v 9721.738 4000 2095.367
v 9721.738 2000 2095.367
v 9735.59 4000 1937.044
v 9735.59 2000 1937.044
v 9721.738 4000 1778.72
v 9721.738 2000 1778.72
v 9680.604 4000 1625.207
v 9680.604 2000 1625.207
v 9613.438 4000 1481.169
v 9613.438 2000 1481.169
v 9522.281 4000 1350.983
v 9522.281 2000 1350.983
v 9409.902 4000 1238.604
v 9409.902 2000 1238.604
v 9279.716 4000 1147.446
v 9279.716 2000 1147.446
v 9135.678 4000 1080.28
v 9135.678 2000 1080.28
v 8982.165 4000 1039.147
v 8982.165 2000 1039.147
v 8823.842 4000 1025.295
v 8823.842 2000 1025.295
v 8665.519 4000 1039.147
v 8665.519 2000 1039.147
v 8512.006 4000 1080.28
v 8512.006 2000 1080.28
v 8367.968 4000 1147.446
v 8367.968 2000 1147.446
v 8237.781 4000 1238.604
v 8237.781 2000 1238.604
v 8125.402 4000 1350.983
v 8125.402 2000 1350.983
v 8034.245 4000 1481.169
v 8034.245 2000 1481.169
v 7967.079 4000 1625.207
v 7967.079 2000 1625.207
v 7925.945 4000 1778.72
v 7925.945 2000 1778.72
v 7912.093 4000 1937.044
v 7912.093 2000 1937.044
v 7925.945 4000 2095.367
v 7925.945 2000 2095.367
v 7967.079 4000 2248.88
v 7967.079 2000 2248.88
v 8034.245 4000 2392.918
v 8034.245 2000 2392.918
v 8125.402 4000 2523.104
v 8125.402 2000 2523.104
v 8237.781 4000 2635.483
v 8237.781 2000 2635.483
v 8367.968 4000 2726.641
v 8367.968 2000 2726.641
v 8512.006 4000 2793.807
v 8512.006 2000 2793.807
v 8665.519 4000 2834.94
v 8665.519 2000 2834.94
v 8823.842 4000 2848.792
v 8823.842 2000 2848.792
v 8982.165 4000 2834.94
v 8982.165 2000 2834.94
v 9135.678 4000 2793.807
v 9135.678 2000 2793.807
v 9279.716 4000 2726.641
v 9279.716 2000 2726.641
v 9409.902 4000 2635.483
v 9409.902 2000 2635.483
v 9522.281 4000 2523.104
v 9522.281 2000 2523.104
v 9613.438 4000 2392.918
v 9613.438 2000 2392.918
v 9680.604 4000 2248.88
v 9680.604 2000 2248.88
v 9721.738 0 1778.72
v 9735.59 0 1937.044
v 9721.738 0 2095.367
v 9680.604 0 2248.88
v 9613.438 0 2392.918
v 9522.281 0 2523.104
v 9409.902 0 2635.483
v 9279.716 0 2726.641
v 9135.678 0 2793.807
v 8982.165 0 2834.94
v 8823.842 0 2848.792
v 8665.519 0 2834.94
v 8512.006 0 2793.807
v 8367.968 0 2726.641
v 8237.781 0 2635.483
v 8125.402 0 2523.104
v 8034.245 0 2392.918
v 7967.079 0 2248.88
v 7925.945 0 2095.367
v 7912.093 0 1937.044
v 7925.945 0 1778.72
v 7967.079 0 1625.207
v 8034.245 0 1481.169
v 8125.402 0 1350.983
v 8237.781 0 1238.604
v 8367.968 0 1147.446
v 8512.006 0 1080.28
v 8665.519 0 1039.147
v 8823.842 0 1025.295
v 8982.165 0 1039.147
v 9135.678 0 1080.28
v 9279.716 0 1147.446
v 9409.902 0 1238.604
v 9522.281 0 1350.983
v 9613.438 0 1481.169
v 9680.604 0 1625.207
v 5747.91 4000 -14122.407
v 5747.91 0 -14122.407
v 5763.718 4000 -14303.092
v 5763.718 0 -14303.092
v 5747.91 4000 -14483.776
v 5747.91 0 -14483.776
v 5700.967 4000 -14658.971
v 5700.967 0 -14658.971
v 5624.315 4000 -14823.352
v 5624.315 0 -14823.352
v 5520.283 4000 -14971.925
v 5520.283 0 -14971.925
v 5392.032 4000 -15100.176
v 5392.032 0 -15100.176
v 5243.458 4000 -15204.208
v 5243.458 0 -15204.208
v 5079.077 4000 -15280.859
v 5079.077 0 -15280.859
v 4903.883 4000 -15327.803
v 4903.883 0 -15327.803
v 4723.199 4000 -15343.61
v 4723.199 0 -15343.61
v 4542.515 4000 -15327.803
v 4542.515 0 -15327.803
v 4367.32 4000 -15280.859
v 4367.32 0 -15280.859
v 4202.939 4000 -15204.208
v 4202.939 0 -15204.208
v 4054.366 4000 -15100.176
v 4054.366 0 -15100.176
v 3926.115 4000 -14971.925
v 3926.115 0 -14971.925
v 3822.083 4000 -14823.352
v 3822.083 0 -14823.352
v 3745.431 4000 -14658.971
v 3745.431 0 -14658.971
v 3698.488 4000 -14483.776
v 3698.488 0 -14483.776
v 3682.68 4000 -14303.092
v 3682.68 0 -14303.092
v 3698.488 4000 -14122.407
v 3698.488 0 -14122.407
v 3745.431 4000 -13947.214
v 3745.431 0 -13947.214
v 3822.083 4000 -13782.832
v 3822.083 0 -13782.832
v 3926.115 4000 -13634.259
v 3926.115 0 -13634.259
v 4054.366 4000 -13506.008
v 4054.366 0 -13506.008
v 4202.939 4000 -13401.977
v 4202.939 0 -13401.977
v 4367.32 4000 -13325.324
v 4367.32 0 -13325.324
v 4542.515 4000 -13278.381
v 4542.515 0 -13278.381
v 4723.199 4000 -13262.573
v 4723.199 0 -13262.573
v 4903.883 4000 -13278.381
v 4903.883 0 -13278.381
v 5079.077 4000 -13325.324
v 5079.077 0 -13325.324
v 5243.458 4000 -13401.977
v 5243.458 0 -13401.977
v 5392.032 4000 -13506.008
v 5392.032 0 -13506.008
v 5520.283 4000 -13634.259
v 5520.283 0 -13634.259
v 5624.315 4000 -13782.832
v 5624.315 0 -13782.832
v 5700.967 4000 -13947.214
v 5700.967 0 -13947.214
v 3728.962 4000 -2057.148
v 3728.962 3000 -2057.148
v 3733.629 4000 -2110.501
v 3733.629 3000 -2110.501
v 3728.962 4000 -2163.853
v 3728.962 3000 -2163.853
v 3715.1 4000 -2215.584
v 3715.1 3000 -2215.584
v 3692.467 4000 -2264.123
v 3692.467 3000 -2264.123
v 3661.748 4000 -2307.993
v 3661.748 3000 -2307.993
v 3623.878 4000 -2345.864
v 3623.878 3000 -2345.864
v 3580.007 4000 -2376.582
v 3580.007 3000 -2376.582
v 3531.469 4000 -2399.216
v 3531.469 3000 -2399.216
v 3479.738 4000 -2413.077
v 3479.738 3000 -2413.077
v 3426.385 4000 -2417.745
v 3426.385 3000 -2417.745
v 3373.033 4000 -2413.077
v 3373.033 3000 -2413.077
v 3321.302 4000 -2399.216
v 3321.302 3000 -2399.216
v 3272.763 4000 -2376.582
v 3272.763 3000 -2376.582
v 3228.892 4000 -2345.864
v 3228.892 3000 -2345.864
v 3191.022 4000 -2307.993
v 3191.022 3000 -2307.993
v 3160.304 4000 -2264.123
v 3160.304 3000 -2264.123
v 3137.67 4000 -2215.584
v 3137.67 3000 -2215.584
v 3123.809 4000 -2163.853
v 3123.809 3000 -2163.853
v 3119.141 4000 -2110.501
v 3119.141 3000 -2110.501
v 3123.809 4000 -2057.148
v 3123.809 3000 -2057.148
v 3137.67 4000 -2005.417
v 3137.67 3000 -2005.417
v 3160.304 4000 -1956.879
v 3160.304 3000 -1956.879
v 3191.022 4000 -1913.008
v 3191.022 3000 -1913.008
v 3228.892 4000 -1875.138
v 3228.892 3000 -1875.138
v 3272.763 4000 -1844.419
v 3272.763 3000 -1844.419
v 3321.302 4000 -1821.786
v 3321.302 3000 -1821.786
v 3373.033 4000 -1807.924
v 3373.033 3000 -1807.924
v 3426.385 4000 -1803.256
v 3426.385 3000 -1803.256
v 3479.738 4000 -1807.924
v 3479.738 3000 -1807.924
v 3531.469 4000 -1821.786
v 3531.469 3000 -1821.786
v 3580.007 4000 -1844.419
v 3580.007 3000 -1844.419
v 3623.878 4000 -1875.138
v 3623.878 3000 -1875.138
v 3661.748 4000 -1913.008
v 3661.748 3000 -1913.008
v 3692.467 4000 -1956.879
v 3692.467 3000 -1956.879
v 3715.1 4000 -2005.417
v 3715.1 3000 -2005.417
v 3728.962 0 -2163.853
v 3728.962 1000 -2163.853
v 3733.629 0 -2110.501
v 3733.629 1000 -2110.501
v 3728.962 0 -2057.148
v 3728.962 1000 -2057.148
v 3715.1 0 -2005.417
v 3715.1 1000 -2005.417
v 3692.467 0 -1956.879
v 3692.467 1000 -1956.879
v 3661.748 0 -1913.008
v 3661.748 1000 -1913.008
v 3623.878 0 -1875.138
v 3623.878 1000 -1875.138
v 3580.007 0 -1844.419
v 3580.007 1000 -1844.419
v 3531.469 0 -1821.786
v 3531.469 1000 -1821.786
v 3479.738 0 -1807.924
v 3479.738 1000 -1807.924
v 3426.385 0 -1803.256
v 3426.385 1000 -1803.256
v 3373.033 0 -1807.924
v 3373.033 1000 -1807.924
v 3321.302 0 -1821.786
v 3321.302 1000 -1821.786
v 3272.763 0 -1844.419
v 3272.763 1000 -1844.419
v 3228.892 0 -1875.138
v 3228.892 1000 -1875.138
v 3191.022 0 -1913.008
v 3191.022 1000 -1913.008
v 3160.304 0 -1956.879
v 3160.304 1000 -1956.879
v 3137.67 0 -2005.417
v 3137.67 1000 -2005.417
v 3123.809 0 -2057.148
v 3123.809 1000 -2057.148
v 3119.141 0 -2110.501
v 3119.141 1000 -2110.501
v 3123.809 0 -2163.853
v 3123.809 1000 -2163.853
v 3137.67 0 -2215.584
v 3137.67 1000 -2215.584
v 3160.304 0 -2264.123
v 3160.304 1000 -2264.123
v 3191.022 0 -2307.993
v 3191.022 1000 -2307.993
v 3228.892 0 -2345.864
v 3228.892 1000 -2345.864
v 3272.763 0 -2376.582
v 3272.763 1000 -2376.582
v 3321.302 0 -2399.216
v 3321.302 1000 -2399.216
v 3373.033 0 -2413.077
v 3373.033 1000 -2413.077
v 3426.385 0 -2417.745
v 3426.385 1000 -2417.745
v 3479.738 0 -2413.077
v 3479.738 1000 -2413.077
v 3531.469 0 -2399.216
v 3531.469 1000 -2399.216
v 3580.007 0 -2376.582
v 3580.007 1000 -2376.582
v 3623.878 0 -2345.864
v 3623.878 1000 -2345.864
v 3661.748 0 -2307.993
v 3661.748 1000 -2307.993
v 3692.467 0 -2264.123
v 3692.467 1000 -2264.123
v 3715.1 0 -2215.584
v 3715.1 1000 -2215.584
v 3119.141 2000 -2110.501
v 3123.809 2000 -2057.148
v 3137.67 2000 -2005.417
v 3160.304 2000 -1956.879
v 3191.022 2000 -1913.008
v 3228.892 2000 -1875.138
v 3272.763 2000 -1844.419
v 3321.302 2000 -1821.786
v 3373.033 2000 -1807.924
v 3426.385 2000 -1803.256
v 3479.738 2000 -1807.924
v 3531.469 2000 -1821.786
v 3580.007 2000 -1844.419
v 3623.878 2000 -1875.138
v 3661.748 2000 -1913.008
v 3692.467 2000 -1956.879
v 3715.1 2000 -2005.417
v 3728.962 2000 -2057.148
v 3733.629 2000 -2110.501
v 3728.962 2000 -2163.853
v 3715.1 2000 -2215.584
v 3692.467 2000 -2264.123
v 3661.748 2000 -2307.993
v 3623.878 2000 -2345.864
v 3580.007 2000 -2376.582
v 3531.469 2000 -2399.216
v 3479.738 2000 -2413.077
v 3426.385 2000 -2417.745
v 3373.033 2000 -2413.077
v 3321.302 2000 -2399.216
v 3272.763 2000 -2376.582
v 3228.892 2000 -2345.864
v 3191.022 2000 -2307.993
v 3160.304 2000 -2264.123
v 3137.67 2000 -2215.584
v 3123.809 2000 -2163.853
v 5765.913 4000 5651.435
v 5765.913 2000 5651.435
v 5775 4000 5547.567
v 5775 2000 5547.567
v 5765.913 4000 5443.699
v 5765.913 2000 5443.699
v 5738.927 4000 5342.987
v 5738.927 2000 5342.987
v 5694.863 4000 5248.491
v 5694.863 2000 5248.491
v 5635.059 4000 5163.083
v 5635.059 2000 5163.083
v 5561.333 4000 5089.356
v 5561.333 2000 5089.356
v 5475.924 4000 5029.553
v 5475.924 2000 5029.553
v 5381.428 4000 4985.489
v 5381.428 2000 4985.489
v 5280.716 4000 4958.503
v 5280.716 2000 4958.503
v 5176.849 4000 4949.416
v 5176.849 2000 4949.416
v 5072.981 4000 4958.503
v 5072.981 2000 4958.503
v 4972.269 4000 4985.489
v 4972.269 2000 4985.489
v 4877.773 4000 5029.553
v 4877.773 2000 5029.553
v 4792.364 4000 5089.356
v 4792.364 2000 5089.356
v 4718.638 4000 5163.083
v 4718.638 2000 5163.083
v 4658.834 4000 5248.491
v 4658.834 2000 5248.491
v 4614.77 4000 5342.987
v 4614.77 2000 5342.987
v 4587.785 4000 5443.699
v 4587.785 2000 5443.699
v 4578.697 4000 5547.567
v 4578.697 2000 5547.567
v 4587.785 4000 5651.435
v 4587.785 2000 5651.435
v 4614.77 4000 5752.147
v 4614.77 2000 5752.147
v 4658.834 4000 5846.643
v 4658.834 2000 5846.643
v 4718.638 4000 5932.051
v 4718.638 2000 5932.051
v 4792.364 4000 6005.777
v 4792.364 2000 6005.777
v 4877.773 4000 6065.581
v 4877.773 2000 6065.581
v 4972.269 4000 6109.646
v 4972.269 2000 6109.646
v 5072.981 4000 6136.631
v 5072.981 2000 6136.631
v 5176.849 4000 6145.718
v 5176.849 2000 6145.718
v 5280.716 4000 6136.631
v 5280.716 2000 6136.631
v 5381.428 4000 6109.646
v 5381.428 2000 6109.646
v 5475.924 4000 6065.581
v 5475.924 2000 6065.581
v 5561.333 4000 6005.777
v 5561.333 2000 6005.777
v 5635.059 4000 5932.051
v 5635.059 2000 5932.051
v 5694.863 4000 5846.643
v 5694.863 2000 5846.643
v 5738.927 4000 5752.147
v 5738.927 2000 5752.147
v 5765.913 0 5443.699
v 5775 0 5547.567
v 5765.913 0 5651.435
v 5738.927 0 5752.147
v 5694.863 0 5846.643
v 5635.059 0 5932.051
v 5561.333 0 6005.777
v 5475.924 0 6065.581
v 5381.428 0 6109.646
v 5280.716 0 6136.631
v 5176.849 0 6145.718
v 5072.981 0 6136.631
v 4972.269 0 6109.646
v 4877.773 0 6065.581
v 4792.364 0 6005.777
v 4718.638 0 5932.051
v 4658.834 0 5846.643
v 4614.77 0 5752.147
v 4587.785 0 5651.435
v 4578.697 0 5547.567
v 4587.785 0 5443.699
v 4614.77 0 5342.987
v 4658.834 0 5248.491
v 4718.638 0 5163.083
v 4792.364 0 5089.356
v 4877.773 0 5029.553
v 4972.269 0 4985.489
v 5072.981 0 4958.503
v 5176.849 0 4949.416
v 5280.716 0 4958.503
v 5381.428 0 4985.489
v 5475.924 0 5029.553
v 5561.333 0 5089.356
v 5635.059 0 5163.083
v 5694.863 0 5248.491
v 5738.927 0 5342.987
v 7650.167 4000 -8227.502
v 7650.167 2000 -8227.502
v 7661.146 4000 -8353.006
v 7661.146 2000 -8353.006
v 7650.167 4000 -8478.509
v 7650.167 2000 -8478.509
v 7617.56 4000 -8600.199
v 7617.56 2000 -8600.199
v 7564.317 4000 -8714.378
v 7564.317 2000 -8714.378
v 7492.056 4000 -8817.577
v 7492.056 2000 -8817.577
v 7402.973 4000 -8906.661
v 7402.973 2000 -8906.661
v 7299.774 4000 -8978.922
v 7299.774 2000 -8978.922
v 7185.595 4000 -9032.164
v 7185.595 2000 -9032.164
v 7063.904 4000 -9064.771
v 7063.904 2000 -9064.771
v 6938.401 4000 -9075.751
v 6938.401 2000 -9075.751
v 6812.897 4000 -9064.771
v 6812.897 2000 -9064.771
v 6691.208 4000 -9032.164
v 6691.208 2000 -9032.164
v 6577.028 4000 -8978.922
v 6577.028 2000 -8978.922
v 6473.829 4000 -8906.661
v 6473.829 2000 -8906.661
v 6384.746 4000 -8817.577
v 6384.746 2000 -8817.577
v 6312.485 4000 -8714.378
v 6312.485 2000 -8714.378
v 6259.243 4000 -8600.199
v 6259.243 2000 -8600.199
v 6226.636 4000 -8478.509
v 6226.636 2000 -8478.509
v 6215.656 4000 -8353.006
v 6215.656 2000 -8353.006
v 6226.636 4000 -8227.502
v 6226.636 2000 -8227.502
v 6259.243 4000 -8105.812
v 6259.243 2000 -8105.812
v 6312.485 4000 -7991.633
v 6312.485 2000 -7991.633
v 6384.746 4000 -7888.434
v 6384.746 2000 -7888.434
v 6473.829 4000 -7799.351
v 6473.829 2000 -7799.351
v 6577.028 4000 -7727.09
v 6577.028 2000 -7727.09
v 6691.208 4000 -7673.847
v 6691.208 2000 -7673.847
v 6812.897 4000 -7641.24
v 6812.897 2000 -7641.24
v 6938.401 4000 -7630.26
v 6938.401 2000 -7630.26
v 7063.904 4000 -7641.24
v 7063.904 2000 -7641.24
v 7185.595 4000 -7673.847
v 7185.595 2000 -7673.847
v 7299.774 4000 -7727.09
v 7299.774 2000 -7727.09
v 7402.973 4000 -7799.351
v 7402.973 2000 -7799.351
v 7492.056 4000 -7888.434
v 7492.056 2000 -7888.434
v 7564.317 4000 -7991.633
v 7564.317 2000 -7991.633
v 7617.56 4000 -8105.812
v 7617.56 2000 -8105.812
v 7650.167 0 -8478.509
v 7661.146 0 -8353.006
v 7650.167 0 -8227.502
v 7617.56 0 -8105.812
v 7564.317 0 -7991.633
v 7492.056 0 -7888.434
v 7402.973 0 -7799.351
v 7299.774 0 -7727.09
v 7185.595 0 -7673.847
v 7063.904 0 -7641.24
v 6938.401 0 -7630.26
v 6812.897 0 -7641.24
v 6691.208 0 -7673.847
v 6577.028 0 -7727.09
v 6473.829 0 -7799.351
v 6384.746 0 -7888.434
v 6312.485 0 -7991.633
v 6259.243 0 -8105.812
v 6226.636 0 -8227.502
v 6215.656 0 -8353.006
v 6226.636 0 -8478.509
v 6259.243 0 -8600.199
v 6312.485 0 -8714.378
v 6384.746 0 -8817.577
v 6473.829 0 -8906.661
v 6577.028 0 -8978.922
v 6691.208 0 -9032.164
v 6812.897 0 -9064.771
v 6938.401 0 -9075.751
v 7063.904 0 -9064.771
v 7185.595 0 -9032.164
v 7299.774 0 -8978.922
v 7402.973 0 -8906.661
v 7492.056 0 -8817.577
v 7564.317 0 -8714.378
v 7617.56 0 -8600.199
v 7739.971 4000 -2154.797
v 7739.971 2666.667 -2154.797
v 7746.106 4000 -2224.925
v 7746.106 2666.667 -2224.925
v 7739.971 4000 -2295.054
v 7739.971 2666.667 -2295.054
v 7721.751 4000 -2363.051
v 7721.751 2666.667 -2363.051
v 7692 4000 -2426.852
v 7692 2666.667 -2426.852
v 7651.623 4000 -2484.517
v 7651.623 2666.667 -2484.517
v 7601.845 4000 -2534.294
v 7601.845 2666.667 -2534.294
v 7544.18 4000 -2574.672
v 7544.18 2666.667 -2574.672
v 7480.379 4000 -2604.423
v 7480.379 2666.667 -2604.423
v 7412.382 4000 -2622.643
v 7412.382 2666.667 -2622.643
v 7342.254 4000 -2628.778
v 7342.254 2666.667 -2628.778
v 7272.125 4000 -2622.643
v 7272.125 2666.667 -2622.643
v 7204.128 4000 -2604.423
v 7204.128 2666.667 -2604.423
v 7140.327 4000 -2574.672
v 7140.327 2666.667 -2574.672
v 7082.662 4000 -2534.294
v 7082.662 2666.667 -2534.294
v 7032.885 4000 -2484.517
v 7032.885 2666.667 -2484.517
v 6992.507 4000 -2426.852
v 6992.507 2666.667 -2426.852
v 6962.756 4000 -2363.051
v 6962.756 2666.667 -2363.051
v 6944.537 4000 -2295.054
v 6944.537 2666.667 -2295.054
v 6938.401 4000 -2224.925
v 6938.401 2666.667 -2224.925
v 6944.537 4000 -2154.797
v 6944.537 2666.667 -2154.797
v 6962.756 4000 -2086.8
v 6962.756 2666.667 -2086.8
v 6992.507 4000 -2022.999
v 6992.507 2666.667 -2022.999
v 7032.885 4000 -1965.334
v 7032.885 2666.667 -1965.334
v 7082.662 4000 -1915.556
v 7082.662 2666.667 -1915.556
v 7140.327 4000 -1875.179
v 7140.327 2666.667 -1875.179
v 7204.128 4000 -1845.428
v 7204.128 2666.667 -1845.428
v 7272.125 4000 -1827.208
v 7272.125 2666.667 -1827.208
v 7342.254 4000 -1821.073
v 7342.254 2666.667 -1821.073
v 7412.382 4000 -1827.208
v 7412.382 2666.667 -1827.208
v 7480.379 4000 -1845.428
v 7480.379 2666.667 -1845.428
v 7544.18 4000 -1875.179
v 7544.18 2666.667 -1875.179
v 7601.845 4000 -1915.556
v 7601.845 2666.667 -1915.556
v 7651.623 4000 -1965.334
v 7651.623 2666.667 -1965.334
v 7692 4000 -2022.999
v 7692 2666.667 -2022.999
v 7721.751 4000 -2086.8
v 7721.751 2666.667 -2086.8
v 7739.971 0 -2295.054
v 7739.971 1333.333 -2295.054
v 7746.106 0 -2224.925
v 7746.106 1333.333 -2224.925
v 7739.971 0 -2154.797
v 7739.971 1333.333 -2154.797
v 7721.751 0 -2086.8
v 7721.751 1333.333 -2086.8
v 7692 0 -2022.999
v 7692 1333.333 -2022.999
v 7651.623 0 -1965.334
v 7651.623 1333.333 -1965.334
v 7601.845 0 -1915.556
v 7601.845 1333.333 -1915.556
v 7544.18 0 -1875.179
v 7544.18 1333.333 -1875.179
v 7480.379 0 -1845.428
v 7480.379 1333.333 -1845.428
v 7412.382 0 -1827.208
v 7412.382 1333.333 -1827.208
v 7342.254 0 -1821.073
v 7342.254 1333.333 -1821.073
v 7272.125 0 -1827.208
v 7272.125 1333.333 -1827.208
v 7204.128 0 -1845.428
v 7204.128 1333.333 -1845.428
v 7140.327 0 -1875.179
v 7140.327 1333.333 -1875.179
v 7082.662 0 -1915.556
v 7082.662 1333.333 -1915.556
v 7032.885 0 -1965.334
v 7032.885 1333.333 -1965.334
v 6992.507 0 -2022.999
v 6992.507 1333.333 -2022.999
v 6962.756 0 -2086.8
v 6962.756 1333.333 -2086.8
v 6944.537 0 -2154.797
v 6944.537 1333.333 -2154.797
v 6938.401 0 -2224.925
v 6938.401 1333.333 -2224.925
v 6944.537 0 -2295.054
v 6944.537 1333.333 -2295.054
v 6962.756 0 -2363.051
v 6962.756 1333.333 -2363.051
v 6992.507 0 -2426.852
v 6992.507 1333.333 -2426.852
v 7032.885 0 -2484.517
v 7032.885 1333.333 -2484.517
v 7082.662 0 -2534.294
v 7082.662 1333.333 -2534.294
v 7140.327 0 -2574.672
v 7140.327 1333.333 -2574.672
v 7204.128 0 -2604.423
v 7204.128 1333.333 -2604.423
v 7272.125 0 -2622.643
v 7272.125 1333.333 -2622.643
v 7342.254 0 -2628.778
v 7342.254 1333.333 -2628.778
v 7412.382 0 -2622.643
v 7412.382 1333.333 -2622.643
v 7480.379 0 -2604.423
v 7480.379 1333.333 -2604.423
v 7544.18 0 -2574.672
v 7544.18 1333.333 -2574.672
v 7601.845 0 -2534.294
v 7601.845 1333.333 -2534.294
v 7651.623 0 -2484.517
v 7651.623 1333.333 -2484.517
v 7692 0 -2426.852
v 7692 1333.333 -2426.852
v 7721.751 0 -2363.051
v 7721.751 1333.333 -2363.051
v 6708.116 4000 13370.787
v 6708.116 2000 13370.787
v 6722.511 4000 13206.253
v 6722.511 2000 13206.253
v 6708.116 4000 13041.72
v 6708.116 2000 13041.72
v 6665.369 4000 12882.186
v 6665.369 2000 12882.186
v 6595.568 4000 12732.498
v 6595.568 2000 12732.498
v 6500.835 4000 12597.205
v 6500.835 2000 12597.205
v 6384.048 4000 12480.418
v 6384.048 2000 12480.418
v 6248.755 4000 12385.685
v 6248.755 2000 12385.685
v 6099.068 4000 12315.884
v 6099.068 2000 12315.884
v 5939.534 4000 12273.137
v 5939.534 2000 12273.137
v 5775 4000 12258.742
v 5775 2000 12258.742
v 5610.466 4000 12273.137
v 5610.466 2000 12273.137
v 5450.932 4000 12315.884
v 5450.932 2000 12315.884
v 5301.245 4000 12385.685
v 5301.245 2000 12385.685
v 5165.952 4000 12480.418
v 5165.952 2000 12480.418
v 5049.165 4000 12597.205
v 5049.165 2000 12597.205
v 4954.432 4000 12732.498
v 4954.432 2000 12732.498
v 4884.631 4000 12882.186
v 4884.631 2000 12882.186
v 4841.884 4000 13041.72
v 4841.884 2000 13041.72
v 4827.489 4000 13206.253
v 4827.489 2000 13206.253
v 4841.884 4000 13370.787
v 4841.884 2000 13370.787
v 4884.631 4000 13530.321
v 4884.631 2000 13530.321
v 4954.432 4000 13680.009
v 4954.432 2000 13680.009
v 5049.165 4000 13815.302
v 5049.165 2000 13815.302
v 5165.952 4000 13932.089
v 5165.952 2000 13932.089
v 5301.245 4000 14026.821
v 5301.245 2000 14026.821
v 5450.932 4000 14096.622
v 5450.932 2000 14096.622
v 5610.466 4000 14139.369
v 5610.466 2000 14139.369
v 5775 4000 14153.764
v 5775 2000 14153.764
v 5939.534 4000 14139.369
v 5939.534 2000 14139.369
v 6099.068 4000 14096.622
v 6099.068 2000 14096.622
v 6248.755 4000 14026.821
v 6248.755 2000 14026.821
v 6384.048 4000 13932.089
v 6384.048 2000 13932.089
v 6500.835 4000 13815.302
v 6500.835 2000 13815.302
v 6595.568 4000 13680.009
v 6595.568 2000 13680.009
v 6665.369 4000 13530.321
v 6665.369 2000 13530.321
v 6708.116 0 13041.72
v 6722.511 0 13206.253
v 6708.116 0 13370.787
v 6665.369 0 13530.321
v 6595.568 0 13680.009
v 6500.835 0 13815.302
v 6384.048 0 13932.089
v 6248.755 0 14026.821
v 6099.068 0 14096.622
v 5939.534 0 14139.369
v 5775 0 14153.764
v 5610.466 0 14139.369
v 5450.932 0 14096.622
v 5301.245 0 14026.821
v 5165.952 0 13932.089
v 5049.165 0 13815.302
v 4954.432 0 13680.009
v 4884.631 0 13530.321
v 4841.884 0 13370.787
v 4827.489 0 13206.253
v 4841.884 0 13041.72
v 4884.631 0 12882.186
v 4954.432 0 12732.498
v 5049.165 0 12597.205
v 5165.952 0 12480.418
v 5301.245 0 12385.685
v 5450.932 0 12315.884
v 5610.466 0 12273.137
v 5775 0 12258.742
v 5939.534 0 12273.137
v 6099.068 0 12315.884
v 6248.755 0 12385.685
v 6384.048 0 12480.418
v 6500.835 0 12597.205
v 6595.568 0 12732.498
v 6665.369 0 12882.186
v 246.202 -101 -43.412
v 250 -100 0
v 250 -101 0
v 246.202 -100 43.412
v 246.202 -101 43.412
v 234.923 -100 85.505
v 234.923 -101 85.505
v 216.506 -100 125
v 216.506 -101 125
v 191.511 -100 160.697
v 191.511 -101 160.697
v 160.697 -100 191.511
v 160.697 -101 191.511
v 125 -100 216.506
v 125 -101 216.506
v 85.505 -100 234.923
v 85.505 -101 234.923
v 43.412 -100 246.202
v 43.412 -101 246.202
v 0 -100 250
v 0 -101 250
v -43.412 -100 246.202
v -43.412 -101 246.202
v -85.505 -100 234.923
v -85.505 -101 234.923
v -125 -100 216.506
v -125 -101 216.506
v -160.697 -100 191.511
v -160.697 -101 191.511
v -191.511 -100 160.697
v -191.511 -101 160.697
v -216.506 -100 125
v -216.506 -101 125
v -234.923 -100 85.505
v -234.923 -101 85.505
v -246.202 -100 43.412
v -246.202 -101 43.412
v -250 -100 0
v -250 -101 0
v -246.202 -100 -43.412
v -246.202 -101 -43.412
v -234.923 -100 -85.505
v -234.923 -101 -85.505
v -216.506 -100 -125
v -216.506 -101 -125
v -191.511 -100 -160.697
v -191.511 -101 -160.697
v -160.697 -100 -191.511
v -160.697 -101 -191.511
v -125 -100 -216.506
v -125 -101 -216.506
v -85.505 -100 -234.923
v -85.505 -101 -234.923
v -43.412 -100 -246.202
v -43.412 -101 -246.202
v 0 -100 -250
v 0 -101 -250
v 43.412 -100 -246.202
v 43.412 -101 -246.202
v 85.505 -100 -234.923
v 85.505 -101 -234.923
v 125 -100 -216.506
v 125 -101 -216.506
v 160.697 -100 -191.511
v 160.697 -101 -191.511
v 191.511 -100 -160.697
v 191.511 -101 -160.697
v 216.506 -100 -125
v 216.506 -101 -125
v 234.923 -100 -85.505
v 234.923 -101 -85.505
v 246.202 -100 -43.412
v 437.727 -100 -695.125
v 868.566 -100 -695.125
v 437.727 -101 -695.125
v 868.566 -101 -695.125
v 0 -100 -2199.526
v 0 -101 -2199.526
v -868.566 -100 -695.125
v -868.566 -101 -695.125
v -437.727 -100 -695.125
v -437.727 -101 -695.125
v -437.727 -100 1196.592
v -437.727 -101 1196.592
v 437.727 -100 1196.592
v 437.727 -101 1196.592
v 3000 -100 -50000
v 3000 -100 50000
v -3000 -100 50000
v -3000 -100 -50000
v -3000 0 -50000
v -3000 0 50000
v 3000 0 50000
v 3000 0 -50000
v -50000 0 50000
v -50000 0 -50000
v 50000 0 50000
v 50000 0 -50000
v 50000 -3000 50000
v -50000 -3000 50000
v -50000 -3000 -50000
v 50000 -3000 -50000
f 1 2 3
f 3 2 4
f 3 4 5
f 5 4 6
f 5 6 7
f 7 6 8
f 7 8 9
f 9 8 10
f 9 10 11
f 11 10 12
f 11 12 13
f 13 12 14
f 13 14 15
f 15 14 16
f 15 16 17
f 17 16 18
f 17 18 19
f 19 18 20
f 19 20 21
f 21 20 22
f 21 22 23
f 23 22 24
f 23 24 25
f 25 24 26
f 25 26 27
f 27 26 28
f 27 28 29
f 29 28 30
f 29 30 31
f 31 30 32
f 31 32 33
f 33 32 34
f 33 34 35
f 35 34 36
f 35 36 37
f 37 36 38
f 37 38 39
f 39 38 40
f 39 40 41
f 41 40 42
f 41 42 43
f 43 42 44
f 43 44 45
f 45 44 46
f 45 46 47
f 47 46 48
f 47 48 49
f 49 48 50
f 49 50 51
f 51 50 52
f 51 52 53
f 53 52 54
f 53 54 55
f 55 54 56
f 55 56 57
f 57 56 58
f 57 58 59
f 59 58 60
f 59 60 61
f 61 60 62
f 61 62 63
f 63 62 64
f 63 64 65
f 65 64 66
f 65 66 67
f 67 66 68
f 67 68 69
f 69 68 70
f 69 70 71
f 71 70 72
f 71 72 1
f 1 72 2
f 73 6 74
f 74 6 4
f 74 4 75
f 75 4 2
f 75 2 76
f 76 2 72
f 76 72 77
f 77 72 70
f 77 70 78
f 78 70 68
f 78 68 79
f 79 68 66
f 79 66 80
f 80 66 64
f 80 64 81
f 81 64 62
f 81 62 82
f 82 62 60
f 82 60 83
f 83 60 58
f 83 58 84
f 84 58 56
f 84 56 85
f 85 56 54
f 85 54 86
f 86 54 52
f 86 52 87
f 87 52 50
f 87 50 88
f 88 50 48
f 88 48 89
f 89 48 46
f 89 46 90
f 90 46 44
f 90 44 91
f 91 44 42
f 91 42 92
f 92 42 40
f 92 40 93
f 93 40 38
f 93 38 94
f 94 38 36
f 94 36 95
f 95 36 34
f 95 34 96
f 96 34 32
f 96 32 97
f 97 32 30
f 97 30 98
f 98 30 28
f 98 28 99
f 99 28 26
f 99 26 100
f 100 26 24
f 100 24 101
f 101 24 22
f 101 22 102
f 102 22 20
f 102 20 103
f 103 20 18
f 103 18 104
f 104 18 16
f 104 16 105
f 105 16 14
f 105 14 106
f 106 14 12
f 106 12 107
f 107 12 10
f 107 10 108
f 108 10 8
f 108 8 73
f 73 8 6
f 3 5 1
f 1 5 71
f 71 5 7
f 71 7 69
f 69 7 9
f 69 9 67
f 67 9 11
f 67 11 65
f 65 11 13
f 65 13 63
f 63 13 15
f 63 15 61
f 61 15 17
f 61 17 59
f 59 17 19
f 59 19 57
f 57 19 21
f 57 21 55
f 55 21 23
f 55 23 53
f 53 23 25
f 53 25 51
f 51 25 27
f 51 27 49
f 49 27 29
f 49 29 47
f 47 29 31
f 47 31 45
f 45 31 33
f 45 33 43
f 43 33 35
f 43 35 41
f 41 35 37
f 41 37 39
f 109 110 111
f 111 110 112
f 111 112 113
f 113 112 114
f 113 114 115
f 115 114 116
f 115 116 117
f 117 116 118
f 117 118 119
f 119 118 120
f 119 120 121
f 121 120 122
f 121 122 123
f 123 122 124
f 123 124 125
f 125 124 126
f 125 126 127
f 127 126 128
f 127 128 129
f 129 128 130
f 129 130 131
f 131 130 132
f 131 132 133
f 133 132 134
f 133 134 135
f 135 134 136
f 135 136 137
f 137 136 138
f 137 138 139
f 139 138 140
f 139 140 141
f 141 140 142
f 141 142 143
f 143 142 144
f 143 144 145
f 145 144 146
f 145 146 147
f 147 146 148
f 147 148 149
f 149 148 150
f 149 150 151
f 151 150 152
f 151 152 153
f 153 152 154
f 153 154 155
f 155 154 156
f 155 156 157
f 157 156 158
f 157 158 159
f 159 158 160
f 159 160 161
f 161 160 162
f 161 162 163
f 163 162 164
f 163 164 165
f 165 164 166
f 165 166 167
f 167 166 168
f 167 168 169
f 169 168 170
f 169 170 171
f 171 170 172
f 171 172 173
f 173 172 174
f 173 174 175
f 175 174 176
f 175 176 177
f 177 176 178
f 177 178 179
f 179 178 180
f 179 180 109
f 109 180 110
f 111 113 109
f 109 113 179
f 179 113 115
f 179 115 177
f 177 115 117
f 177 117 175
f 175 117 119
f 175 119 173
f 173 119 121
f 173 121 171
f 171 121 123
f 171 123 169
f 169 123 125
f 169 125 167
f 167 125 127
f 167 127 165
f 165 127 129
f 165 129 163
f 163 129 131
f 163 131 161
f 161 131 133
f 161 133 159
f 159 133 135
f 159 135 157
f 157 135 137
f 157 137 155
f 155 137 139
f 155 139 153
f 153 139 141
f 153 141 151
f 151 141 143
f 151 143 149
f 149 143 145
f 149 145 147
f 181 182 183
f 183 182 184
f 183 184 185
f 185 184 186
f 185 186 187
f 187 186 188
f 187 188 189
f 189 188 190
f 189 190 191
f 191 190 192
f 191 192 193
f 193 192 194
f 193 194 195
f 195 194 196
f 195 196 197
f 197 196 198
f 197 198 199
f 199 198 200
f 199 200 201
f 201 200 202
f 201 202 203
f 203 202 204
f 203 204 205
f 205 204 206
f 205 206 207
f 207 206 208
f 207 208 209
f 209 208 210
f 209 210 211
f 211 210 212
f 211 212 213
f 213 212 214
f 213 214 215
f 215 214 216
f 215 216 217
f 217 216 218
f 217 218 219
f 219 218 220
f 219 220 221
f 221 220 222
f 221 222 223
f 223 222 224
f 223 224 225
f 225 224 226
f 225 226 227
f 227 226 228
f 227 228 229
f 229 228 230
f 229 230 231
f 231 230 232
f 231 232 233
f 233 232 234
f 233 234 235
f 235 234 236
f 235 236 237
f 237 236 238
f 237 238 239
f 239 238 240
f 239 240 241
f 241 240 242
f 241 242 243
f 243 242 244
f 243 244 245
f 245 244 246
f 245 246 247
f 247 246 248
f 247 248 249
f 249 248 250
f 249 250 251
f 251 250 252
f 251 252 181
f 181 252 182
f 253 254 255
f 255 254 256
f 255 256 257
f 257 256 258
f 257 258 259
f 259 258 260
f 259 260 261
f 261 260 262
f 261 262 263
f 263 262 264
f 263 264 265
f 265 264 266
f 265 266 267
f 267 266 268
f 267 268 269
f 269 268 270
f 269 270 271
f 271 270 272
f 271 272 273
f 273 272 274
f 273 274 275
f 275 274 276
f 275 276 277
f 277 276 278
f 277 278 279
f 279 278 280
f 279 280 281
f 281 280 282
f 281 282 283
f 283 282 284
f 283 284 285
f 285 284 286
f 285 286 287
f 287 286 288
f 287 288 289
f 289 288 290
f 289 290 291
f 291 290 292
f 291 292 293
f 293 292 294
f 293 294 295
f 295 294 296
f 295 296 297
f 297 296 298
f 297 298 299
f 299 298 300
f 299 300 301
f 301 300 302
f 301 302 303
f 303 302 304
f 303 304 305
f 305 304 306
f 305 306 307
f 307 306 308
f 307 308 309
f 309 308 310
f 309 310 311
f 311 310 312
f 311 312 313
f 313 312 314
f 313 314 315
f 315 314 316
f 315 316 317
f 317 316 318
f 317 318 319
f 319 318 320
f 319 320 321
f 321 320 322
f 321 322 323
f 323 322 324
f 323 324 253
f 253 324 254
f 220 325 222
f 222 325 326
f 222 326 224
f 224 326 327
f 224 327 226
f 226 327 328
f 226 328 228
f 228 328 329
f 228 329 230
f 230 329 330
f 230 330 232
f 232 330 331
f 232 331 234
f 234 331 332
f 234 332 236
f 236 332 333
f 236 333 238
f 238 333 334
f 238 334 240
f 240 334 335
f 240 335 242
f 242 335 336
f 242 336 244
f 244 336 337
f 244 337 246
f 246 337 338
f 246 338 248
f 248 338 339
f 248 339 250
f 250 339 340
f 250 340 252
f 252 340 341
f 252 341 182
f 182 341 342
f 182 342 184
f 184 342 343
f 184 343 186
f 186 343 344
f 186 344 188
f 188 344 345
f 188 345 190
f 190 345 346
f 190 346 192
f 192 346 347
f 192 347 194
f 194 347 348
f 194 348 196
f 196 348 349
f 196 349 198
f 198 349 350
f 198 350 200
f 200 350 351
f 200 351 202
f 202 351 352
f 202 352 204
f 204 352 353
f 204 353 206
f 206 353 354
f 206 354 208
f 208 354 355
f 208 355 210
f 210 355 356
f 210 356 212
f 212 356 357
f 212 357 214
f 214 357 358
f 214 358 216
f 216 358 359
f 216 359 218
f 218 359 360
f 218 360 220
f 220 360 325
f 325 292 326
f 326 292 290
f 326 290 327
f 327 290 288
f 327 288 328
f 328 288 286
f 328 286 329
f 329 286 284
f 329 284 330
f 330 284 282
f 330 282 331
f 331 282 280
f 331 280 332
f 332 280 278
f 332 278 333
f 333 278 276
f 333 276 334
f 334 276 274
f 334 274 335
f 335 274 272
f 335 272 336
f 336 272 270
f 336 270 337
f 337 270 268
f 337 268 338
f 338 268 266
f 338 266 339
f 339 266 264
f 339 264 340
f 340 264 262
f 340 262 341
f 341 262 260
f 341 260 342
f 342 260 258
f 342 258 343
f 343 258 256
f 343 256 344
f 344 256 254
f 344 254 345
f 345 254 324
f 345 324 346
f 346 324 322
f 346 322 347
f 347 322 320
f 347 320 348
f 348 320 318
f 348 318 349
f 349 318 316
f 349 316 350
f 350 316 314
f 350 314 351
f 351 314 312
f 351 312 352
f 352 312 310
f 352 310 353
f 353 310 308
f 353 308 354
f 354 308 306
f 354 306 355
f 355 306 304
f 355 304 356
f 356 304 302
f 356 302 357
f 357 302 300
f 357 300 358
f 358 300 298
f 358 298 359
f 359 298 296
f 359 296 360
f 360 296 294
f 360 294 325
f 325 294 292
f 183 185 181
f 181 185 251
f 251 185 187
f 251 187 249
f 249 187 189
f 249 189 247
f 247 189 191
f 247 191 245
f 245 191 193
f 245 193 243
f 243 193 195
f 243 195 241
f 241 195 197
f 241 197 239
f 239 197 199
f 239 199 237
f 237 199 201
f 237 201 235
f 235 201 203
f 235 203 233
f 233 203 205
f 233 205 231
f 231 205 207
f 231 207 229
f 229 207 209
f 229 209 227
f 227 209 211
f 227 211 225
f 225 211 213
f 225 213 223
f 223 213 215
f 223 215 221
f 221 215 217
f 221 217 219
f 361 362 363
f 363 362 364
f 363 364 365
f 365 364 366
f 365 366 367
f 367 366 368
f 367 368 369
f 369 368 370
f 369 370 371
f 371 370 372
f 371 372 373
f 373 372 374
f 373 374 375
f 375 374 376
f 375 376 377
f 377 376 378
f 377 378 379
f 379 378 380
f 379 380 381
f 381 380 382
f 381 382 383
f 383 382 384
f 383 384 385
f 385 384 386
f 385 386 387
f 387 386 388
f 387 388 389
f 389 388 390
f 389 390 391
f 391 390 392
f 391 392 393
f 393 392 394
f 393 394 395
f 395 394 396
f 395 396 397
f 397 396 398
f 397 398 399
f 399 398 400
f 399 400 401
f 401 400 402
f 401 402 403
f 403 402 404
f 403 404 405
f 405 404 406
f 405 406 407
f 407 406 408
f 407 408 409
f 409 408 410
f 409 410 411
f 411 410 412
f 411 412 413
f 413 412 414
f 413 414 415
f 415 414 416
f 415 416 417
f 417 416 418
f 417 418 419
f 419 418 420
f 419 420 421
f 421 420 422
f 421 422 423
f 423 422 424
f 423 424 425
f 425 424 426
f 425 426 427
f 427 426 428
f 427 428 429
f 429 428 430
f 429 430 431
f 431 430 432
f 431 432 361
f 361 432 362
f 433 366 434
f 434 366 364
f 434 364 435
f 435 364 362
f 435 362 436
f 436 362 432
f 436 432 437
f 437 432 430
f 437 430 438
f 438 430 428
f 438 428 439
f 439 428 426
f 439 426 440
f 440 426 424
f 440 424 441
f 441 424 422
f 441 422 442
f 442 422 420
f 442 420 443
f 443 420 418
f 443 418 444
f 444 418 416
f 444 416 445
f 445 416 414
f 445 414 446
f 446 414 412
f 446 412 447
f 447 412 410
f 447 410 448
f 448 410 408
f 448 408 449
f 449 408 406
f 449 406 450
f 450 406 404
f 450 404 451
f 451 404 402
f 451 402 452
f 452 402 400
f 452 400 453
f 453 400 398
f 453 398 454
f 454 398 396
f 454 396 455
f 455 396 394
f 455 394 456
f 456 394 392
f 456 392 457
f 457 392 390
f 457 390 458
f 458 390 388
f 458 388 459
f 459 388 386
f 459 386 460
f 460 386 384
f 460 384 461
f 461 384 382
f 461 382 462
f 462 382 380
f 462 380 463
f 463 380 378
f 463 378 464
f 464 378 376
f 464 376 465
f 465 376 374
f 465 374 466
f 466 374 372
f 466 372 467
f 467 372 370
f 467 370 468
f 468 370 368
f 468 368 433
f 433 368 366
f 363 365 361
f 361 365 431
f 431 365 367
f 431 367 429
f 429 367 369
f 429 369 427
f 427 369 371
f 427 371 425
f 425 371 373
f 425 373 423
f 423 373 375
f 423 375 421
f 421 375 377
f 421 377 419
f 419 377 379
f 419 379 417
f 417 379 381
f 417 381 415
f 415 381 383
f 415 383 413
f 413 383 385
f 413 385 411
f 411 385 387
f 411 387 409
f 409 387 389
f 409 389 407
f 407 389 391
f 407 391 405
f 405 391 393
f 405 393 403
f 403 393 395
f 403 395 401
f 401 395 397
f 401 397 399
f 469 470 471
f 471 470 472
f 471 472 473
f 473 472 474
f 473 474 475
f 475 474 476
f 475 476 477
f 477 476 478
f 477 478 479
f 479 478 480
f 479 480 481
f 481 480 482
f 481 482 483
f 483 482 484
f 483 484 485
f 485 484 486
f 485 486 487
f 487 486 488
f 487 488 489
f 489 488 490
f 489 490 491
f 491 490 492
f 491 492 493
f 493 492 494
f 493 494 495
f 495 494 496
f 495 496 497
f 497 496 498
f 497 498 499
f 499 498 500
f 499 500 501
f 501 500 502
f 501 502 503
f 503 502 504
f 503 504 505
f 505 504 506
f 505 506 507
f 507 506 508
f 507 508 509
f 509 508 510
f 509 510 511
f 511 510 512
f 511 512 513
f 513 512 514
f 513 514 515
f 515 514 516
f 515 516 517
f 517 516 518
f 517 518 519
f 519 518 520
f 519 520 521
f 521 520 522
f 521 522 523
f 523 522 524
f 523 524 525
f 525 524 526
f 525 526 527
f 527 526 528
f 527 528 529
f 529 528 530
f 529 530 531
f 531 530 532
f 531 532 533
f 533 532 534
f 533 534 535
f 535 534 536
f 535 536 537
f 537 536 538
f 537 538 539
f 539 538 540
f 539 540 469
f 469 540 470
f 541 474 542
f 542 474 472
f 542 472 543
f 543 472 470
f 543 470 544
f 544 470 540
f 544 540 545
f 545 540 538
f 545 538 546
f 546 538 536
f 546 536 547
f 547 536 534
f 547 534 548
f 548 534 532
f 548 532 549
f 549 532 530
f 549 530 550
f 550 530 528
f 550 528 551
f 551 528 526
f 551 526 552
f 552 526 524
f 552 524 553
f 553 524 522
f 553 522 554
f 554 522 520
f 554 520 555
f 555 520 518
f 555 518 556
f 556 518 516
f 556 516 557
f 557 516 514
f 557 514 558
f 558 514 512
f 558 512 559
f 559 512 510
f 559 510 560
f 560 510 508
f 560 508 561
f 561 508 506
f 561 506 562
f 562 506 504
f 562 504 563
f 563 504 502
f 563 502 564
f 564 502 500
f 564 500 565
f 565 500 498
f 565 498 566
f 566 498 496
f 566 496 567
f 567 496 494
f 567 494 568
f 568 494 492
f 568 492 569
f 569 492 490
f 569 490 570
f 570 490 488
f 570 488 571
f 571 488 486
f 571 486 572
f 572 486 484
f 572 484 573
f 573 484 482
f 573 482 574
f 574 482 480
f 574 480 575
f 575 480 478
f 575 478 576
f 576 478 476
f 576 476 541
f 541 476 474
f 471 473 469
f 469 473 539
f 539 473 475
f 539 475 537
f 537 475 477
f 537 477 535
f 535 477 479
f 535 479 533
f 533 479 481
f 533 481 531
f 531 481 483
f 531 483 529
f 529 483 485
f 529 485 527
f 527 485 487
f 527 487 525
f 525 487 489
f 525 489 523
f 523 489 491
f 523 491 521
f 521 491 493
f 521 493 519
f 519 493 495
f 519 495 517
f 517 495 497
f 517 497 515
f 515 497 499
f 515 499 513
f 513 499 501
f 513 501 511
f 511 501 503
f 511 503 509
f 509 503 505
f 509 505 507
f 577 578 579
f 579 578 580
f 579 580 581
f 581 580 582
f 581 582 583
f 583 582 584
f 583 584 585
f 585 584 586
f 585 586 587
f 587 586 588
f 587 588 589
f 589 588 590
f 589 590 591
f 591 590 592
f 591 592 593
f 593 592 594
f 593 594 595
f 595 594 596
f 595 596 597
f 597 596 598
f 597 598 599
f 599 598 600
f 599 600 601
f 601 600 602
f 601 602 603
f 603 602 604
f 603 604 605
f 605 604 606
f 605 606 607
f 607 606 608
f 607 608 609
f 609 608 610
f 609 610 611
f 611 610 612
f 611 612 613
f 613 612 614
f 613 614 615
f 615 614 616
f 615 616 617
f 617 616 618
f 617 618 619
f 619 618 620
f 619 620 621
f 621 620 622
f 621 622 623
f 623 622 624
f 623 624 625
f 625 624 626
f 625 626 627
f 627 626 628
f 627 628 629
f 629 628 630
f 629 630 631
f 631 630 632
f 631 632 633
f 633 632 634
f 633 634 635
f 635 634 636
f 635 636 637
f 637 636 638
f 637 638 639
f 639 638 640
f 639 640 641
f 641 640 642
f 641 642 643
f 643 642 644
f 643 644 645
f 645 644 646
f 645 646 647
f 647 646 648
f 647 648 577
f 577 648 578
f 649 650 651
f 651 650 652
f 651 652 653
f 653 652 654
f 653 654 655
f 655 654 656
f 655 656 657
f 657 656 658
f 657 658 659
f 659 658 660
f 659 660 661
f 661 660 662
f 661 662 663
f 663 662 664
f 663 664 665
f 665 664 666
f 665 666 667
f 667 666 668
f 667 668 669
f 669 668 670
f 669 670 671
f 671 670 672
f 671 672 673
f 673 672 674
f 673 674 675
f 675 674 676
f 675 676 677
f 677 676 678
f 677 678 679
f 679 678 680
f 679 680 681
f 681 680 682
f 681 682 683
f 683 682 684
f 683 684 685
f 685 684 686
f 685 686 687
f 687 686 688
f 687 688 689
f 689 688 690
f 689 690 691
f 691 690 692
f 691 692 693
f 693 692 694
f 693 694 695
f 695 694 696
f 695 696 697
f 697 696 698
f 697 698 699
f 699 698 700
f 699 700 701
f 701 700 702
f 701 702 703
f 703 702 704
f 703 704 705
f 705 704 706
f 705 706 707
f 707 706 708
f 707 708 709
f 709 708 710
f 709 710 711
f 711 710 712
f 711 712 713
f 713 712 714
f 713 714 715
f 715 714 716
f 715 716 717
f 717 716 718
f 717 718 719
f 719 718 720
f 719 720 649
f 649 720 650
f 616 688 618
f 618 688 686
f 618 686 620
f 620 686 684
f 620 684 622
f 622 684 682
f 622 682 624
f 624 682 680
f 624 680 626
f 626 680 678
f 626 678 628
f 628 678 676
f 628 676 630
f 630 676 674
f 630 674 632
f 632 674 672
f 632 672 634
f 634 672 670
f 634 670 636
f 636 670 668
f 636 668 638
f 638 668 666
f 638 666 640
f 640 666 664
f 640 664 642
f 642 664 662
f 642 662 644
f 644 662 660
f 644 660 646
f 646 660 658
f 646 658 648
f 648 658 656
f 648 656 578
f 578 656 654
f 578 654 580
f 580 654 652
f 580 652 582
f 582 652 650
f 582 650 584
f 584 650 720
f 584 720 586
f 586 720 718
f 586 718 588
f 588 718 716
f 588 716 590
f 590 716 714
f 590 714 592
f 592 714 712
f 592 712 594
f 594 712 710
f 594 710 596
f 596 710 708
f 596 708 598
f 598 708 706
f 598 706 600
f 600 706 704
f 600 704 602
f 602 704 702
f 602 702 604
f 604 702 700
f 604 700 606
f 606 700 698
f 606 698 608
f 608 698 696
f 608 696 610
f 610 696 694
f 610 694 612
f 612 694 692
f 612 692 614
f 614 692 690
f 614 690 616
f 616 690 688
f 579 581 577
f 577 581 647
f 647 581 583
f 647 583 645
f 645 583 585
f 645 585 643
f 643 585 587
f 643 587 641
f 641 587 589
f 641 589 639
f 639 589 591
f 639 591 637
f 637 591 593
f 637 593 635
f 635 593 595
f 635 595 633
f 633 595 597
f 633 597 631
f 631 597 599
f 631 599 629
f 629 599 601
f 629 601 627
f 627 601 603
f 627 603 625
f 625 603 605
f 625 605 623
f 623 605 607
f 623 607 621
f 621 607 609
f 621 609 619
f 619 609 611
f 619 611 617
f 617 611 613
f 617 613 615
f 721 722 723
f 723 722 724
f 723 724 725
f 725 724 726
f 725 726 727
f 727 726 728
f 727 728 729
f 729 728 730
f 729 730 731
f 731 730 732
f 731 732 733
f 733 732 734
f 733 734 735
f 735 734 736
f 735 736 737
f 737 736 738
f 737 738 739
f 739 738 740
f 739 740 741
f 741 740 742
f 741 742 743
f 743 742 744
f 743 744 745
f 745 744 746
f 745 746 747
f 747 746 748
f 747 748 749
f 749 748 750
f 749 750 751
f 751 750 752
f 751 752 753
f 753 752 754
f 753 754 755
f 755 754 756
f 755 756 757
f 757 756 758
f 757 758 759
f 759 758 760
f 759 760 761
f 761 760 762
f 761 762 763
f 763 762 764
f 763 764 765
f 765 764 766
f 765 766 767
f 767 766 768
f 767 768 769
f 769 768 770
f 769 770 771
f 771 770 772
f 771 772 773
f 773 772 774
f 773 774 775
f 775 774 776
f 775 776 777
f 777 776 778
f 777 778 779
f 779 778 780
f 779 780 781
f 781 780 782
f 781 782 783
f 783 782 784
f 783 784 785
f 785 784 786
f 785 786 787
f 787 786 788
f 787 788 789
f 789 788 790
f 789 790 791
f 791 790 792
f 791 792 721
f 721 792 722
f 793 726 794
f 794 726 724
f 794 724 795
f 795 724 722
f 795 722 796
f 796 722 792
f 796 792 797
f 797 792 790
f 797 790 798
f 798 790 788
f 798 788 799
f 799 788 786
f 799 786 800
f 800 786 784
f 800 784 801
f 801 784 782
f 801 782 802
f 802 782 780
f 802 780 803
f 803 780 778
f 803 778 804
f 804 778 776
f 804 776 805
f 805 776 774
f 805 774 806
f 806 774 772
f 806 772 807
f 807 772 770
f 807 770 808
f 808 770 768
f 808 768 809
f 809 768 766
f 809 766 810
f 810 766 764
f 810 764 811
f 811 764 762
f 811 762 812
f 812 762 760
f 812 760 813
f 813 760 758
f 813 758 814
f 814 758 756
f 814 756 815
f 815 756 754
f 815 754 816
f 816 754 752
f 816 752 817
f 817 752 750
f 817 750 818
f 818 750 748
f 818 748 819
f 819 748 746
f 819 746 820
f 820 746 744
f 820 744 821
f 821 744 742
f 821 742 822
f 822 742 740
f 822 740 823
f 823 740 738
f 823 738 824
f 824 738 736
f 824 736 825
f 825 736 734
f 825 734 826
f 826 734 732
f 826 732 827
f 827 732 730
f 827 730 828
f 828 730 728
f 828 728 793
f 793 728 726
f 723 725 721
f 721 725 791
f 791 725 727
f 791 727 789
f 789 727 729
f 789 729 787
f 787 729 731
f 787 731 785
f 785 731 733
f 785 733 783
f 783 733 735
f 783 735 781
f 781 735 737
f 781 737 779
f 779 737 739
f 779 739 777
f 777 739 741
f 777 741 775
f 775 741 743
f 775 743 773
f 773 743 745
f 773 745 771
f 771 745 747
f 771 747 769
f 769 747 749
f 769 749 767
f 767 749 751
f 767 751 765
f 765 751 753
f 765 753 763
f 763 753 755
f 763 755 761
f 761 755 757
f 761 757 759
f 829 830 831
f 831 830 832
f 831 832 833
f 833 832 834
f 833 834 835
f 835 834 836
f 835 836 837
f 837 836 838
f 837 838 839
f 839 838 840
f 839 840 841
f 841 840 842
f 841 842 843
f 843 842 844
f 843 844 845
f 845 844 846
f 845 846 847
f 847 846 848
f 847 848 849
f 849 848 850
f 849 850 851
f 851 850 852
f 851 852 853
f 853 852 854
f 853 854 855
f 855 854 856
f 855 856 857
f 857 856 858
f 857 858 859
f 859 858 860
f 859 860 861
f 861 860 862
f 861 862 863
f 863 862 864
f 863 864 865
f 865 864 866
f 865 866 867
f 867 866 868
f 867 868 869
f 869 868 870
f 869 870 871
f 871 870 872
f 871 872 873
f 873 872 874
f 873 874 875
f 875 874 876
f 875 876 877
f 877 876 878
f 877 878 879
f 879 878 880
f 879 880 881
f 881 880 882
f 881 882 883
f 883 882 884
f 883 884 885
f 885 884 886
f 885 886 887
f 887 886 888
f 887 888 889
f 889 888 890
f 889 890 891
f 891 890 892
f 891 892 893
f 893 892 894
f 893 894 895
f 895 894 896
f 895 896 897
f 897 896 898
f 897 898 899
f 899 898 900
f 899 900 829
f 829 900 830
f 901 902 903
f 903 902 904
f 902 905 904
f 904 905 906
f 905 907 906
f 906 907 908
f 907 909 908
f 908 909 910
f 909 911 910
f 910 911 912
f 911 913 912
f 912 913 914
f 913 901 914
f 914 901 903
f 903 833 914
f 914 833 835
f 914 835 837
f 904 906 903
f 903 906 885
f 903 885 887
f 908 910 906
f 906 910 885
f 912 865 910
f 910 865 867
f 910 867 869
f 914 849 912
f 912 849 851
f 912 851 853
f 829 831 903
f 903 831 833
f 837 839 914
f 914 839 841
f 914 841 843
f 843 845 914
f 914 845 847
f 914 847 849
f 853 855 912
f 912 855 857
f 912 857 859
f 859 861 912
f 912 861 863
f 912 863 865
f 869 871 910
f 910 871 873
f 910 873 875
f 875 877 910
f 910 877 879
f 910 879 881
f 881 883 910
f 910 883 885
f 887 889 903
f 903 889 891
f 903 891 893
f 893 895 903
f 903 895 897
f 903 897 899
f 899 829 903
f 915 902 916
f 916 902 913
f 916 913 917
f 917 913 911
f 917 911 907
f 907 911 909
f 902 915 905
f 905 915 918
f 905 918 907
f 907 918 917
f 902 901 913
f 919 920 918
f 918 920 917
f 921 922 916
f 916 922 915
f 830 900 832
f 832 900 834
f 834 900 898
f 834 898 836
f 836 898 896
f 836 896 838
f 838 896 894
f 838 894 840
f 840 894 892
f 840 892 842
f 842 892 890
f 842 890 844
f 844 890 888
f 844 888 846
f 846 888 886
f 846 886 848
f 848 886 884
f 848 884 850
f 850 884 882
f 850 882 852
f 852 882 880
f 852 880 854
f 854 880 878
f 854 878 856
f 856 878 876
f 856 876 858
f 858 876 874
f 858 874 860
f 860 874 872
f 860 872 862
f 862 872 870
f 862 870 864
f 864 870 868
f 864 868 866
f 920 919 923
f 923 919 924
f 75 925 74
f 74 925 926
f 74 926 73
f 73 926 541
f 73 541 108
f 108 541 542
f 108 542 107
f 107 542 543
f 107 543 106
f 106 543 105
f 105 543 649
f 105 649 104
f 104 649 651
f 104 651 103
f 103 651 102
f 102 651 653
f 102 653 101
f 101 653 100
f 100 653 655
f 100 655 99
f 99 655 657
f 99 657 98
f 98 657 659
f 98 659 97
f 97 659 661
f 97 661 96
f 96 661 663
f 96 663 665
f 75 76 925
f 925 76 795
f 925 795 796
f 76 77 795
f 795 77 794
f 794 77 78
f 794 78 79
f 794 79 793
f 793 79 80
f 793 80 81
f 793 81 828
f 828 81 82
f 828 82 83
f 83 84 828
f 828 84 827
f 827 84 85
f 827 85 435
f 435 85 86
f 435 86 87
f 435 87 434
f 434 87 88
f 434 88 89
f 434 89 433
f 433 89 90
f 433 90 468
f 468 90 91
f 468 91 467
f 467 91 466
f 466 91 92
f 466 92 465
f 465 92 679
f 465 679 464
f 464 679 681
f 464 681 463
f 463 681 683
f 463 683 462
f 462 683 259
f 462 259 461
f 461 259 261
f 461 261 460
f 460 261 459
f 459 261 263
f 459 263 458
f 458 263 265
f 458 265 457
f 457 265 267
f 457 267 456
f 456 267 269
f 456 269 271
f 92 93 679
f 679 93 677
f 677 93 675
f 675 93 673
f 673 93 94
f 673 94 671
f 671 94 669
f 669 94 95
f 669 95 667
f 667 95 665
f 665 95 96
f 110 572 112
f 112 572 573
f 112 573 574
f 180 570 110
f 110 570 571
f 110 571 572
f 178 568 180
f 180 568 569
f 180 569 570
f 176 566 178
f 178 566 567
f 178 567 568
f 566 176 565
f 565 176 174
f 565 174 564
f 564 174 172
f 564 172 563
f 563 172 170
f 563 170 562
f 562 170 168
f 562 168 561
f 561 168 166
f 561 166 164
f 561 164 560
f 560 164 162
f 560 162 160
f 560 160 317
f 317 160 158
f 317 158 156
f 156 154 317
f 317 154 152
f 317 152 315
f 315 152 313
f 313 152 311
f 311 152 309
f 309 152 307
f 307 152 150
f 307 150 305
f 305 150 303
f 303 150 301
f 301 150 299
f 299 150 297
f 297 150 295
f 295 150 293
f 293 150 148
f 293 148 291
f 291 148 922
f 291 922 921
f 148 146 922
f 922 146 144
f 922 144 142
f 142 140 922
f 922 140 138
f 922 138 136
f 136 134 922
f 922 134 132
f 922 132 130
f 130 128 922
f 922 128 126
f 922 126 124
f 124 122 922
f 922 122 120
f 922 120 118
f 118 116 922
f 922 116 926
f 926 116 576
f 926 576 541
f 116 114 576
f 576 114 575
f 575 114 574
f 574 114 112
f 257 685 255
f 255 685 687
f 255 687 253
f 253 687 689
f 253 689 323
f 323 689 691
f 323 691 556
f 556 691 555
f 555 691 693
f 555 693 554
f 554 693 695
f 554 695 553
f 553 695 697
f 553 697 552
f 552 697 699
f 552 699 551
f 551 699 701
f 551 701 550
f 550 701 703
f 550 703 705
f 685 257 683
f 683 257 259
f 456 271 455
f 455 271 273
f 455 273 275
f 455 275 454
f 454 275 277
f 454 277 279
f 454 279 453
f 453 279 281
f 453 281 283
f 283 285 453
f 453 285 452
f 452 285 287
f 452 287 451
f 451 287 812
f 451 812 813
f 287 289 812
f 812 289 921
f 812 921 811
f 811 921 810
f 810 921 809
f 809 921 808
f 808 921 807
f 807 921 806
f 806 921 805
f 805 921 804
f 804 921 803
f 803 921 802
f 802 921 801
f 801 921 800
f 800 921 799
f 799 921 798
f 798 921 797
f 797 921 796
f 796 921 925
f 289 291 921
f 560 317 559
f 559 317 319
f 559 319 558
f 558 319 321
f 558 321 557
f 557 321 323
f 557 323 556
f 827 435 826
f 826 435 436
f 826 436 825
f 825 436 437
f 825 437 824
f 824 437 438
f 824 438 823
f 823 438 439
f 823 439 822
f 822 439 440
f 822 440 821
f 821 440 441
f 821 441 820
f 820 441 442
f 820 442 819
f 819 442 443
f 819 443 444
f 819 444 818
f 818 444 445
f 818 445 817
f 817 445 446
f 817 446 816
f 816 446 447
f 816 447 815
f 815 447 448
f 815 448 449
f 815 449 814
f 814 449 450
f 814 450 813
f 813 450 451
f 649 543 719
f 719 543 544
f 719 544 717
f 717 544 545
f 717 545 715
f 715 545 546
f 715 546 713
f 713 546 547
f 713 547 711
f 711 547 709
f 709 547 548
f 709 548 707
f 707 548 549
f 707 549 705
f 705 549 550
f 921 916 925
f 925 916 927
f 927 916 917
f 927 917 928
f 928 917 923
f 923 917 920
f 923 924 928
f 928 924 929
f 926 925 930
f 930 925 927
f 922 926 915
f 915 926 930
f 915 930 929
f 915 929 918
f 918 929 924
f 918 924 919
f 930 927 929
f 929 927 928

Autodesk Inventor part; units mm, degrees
ref_plane "YZ Plane" through (0, 0, 0) normal (1, 0, 0) x (0, 1, 0)
ref_plane "XZ Plane" through (0, 0, 0) normal (0, 1, 0) x (-1, 0, 0)
ref_plane "XY Plane" through (0, 0, 0) normal (0, 0, 1) x (1, 0, 0)
sketch "Sketch1" plane through (0, 0, 0) normal (0, 1, 0) x (-1, 0, 0)
  line L0 (-50000, 50000) -> (50000, 50000)
  line L1 (50000, 50000) -> (50000, -50000)
  line L2 (50000, -50000) -> (-50000, -50000)
  line L3 (-50000, -50000) -> (-50000, 50000)
  line L4 (-50000, 50000) -> (50000, -50000) construction
  line L5 (50000, 50000) -> (-50000, -50000) construction
  point P0 (0, 0)
  dimension "d0" = 100000
  dimension "d1" = 100000
extrude "Extrusion1" add sketch "Sketch1" against normal blind 3000
sketch "Sketch2" plane through (0, 0, 0) normal (0, 1, 0) x (1, 0, 0)
  line L0 (-50000, 50000) -> (50000, 50000) projected
  line L1 (3000, -50000) -> (-3000, -50000)
  line L2 (-3000, -50000) -> (-3000, 50000)
  line L3 (-3000, 50000) -> (3000, 50000)
  line L4 (3000, 50000) -> (3000, -50000)
  line L5 (3000, -50000) -> (-3000, 50000) construction
  line L6 (-3000, -50000) -> (3000, 50000) construction
  point P0 (0, 0)
  dimension "d4" = 6000
extrude "Extrusion2" cut sketch "Sketch2" against normal blind 100
sketch "Sketch3" plane through (0, 0, 0) normal (0, 1, 0) x (1, 0, 0)
  line L0 (3000, 50000) -> (3000, -50000) projected
  line L1 (3000, -50000) -> (50000, -50000) projected
  line L2 (50000, -50000) -> (50000, 50000) projected
  line L3 (50000, 50000) -> (3000, 50000) projected
  circle A0 centre (-5162.0769, 2791.8732) radius 250
  circle A1 centre (3448.1949, 3556.0433) radius 250
  point P0 (0, 0)
  dimension "d7" = 500
  dimension "d8" = 500
extrude "Extrusion3" [suppressed]
pattern_linear "Rectangular Pattern1" [suppressed]
pattern_linear "Rectangular Pattern2" [suppressed]
sketch "Sketch4" plane through (0, 0, 0) normal (0, 1, 0) x (1, 0, 0)
  line L0 (3656.3304, 1373.5123) -> (6095.1457, 1373.5123)
  line L1 (6095.1457, 1373.5123) -> (6095.1457, 1000)
  line L2 (6095.1457, 1000) -> (3656.3304, 1000)
  line L3 (3656.3304, 1000) -> (3656.3304, 1373.5123)
  line L4 (-17614.0817, 28959.908) -> (-6502.6944, 28959.908)
  line L5 (-6502.6944, 28959.908) -> (-6502.6944, 26841.9015)
  line L6 (-6502.6944, 26841.9015) -> (-17614.0817, 26841.9015)
  line L7 (-17614.0817, 26841.9015) -> (-17614.0817, 28959.908)
  line L8 (8740.9777, -30936.9942) -> (14162.228, -30936.9942)
  line L9 (14162.228, -30936.9942) -> (14162.228, -32058.6321)
  line L10 (14162.228, -32058.6321) -> (8740.9777, -32058.6321)
  line L11 (8740.9777, -32058.6321) -> (8740.9777, -30936.9942)
  point P0 (0, 0)
  dimension "d17" = 1000
extrude "Extrusion4" [suppressed]
sketch "Sketch5" plane through (0, -100, 0) normal (0, 1, 0) x (1, 0, 0)
  line L0 (-437.7268, -1196.5922) -> (437.7268, -1196.5922)
  line L1 (437.7268, -1196.5922) -> (437.7268, 1196.5922)
  line L2 (437.7268, 1196.5922) -> (-437.7268, 1196.5922)
  line L3 (-437.7268, 1196.5922) -> (-437.7268, -1196.5922)
  line L4 (-437.7268, -1196.5922) -> (437.7268, 1196.5922) construction
  line L5 (437.7268, -1196.5922) -> (-437.7268, 1196.5922) construction
  line L6 (0, 2199.5256) -> (868.5658, 695.1255)
  line L7 (868.5658, 695.1255) -> (-868.5658, 695.1255)
  line L8 (-868.5658, 695.1255) -> (0, 2199.5256)
  circle A0 centre (0, 0) radius 250
  point P0 (0, 1196.5922)
  point P1 (437.7268, 695.1255)
  point P2 (-437.7268, 695.1255)
  dimension "d23" = 500
extrude "Extrusion5" cut sketch "Sketch5" against normal blind 1
sketch "Sketch6" plane through (0, 0, 0) normal (0, 1, 0) x (1, 0, 0)
  circle A0 centre (3426.3852, 2110.5007) radius 307.2443
  circle A1 centre (7342.2537, 2224.9254) radius 403.8527
  circle A2 centre (6938.401, 8353.0057) radius 722.7454
  circle A3 centre (4723.1989, 14303.0919) radius 1040.5189
  circle A4 centre (5176.8486, -5547.567) radius 598.1514
  circle A5 centre (8823.8417, -1937.0436) radius 911.7483
  circle A6 centre (5775, -13206.2531) radius 947.511
  point P0 (0, 0)
extrude "Extrusion6" add sketch "Sketch6" along normal blind 4000
properties part number "forest1"
